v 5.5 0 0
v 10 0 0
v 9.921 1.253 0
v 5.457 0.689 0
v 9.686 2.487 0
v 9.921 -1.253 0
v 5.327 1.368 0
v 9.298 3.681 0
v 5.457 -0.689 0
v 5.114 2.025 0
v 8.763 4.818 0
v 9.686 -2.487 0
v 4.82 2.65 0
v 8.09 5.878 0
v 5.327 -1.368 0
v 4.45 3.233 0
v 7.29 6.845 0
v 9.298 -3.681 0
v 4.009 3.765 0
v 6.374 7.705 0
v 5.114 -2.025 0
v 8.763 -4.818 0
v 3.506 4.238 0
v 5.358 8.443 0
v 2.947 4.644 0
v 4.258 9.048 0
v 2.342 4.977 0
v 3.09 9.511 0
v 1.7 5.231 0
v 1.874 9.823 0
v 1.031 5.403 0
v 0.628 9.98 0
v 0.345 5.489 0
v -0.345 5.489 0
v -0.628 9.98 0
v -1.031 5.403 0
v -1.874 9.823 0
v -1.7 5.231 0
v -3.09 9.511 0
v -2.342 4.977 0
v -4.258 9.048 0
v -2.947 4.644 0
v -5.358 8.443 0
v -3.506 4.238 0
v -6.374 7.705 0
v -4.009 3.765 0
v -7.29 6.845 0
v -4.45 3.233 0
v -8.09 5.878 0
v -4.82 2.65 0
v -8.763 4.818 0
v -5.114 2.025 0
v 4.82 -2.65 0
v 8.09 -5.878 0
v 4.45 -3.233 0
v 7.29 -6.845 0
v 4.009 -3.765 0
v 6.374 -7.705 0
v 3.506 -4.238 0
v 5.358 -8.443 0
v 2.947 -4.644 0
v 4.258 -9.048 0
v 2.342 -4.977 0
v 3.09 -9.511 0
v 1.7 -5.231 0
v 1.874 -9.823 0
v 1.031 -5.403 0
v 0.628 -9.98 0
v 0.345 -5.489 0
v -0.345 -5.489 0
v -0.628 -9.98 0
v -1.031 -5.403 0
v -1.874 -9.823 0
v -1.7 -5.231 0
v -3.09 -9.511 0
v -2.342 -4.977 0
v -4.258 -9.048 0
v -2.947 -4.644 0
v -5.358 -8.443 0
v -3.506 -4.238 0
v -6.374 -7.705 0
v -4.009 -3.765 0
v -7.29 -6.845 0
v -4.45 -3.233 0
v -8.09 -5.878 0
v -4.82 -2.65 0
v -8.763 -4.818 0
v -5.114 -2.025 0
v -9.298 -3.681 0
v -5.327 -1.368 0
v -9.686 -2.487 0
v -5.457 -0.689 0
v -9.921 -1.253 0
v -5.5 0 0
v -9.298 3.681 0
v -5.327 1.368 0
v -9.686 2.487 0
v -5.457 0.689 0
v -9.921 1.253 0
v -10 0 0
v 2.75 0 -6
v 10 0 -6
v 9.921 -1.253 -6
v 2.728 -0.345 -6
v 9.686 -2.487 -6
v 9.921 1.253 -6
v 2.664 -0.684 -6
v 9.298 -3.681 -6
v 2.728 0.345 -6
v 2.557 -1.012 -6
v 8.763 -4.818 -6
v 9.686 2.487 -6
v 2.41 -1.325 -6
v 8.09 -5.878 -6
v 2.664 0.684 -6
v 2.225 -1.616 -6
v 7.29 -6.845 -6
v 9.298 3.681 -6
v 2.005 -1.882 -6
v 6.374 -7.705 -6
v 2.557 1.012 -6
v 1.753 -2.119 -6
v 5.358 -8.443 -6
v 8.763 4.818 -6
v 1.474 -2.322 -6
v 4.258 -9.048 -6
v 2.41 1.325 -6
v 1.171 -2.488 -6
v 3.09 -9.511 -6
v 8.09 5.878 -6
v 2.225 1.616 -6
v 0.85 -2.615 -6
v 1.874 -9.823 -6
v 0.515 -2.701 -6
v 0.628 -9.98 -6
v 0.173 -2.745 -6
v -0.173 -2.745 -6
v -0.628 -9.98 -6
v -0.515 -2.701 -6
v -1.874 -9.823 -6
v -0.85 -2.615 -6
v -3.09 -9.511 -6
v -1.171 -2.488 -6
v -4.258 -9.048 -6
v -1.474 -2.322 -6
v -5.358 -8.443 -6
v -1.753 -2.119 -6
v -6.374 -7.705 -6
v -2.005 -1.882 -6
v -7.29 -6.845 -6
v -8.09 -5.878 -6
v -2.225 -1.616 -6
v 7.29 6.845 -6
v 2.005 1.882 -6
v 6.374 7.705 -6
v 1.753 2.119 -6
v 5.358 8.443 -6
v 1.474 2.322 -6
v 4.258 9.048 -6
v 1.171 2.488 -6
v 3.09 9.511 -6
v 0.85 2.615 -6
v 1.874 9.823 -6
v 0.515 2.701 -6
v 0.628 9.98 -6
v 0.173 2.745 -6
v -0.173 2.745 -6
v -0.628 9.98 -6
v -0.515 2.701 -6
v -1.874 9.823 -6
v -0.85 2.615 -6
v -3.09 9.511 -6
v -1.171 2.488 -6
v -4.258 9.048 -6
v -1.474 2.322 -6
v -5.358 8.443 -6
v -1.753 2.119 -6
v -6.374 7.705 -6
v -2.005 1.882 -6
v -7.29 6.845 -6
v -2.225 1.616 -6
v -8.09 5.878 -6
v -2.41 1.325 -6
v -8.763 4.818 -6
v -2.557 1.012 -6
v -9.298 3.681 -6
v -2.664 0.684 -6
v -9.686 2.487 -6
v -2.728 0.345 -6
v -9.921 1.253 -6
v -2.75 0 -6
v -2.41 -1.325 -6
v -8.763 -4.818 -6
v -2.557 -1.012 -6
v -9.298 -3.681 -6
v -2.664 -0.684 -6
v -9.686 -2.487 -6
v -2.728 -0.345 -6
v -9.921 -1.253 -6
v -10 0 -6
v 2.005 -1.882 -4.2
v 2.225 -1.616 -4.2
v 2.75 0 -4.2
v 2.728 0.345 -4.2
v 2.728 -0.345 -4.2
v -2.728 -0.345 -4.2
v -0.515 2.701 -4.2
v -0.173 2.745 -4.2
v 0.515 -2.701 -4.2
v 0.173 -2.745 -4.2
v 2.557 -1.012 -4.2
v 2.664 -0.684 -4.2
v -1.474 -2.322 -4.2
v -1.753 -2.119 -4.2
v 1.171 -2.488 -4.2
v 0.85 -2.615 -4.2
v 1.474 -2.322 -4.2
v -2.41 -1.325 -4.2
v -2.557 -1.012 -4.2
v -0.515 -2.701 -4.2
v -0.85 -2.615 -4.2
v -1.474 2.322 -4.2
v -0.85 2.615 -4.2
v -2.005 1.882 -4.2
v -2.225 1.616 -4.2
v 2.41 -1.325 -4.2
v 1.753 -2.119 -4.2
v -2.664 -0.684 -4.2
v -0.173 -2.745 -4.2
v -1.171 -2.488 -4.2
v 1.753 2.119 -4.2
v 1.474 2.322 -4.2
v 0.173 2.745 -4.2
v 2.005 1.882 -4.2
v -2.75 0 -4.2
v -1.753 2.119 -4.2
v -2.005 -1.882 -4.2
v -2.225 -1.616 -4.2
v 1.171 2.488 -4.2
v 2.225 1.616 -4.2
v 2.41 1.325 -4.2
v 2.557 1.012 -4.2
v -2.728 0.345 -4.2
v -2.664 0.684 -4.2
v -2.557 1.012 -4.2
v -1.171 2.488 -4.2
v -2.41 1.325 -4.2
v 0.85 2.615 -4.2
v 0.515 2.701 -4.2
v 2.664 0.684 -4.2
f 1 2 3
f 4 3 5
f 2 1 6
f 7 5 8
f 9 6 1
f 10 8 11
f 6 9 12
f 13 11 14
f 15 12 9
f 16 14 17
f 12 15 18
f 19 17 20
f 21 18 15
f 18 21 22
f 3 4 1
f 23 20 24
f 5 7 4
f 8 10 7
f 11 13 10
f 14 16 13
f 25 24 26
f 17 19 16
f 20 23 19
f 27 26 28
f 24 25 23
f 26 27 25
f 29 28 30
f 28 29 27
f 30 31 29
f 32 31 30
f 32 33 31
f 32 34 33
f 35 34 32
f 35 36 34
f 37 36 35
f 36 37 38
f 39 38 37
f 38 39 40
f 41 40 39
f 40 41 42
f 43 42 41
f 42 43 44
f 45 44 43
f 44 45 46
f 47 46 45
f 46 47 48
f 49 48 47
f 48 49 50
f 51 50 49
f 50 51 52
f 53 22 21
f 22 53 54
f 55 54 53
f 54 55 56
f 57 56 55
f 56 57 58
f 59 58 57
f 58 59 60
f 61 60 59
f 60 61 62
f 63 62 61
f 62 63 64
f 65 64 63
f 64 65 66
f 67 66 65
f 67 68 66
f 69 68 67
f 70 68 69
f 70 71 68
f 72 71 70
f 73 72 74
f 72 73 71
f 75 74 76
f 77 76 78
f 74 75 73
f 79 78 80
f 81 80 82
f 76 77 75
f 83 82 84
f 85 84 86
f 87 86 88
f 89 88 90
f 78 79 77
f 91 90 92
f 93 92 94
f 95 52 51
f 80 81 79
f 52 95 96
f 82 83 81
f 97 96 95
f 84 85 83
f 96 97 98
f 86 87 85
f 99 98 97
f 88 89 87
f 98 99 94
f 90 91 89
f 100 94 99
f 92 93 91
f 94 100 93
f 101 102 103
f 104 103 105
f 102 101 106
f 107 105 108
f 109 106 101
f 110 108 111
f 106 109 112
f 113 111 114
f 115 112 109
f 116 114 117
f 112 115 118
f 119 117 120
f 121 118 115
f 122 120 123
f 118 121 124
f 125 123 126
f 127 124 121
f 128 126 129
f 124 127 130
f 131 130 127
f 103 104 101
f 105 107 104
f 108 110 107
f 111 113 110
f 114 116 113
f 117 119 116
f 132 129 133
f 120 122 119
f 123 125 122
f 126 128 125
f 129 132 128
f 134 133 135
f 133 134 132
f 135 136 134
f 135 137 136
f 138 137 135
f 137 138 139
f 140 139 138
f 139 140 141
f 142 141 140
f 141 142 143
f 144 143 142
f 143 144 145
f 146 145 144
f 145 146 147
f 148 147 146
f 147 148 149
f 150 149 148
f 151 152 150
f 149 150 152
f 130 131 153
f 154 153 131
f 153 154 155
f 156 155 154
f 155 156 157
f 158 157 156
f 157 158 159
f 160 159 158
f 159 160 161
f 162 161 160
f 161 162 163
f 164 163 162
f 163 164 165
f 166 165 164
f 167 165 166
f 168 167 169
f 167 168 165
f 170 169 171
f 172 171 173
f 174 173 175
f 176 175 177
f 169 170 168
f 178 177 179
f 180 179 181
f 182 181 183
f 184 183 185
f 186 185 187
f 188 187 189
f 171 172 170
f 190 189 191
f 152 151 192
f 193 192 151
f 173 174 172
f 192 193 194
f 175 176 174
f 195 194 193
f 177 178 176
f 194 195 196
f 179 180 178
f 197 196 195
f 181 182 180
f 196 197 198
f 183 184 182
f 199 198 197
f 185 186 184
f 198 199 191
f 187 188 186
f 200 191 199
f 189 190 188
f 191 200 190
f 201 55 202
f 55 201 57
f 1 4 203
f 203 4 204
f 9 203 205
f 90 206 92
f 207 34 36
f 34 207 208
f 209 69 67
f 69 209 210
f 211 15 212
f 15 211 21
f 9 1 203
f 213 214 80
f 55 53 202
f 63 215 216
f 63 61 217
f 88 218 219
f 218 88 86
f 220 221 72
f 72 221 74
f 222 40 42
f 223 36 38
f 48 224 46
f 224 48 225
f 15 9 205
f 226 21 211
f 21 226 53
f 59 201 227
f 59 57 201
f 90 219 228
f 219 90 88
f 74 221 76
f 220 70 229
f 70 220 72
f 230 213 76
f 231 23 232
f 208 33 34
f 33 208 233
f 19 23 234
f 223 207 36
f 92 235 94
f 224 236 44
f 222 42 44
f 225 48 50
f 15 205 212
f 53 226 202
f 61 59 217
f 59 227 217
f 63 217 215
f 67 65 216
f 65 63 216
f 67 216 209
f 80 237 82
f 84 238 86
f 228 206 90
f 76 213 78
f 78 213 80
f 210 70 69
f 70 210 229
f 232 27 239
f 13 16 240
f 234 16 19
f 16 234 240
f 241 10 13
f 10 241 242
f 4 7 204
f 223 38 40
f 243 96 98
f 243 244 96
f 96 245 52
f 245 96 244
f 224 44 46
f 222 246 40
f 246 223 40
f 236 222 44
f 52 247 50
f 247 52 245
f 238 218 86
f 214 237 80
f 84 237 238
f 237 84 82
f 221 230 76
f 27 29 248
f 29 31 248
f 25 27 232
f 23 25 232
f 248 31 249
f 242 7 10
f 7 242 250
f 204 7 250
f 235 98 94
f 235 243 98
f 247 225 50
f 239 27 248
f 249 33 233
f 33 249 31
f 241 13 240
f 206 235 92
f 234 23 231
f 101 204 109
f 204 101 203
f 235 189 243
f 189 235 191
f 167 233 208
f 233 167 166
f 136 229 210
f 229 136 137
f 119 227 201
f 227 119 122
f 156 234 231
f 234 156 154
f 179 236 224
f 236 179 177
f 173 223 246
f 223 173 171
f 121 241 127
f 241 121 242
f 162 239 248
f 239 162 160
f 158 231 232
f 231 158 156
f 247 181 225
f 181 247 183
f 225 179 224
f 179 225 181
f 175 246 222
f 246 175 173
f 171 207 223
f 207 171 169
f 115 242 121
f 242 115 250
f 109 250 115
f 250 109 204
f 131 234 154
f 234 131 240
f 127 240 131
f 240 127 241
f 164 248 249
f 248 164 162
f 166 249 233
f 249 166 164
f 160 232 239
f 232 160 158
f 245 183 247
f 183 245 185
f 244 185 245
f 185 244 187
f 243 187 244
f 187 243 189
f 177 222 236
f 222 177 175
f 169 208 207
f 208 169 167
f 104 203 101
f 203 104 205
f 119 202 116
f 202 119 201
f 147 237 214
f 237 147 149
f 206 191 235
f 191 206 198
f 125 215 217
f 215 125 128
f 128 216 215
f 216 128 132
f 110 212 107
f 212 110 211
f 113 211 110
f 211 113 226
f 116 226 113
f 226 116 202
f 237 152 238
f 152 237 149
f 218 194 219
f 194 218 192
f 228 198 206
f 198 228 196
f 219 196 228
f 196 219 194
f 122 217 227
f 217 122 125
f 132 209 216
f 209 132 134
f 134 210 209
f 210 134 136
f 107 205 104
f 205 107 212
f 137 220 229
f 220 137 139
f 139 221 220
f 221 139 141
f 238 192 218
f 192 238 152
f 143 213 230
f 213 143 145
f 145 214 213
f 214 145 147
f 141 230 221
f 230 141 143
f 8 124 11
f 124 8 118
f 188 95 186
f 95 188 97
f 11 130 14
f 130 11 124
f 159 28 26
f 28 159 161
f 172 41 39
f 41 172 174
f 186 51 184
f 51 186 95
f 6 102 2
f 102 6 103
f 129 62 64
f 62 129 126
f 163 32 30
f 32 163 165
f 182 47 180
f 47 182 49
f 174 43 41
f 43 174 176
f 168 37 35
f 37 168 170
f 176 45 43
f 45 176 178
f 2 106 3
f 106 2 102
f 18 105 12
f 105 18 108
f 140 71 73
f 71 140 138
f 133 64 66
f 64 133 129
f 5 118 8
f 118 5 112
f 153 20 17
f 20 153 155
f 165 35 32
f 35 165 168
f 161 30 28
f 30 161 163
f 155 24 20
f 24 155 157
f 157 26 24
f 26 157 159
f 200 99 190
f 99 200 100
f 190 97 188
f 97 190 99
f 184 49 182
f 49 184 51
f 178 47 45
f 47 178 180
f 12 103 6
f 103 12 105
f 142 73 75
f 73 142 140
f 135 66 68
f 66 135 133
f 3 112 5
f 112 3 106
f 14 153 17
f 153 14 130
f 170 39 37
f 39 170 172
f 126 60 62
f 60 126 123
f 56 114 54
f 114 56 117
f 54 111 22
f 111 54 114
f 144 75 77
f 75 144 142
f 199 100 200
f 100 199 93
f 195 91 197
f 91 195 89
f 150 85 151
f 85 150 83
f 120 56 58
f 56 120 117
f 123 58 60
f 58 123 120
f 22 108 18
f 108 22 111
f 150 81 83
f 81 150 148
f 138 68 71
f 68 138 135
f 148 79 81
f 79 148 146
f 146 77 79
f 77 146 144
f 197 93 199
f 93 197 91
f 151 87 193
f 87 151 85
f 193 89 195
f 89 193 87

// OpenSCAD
$fn = 50;


difference() {
	union() {
		translate(v = [0, 0, -6.0000000000]) {
			cylinder(h = 6, r = 10.0000000000);
		}
		cylinder(h = 0, r = 19.0000000000);
	}
	union() {
		translate(v = [0, 0, 0]) {
			rotate(a = [0, 0, 0]) {
				difference() {
					union() {
						#translate(v = [0, 0, -6.0000000000]) {
							cylinder(h = 6, r = 2.2500000000);
						}
						#translate(v = [0, 0, -4.2000000000]) {
							cylinder(h = 4.2000000000, r = 10.0000000000, r1 = 2.7500000000, r2 = 5.5000000000);
						}
						#translate(v = [0, 0, -6.0000000000]) {
							cylinder(h = 6, r = 2.7500000000);
						}
						#translate(v = [0, 0, -6.0000000000]) {
							cylinder(h = 6, r = 2.2500000000);
						}
					}
					union();
				}
			}
		}
	}
}
